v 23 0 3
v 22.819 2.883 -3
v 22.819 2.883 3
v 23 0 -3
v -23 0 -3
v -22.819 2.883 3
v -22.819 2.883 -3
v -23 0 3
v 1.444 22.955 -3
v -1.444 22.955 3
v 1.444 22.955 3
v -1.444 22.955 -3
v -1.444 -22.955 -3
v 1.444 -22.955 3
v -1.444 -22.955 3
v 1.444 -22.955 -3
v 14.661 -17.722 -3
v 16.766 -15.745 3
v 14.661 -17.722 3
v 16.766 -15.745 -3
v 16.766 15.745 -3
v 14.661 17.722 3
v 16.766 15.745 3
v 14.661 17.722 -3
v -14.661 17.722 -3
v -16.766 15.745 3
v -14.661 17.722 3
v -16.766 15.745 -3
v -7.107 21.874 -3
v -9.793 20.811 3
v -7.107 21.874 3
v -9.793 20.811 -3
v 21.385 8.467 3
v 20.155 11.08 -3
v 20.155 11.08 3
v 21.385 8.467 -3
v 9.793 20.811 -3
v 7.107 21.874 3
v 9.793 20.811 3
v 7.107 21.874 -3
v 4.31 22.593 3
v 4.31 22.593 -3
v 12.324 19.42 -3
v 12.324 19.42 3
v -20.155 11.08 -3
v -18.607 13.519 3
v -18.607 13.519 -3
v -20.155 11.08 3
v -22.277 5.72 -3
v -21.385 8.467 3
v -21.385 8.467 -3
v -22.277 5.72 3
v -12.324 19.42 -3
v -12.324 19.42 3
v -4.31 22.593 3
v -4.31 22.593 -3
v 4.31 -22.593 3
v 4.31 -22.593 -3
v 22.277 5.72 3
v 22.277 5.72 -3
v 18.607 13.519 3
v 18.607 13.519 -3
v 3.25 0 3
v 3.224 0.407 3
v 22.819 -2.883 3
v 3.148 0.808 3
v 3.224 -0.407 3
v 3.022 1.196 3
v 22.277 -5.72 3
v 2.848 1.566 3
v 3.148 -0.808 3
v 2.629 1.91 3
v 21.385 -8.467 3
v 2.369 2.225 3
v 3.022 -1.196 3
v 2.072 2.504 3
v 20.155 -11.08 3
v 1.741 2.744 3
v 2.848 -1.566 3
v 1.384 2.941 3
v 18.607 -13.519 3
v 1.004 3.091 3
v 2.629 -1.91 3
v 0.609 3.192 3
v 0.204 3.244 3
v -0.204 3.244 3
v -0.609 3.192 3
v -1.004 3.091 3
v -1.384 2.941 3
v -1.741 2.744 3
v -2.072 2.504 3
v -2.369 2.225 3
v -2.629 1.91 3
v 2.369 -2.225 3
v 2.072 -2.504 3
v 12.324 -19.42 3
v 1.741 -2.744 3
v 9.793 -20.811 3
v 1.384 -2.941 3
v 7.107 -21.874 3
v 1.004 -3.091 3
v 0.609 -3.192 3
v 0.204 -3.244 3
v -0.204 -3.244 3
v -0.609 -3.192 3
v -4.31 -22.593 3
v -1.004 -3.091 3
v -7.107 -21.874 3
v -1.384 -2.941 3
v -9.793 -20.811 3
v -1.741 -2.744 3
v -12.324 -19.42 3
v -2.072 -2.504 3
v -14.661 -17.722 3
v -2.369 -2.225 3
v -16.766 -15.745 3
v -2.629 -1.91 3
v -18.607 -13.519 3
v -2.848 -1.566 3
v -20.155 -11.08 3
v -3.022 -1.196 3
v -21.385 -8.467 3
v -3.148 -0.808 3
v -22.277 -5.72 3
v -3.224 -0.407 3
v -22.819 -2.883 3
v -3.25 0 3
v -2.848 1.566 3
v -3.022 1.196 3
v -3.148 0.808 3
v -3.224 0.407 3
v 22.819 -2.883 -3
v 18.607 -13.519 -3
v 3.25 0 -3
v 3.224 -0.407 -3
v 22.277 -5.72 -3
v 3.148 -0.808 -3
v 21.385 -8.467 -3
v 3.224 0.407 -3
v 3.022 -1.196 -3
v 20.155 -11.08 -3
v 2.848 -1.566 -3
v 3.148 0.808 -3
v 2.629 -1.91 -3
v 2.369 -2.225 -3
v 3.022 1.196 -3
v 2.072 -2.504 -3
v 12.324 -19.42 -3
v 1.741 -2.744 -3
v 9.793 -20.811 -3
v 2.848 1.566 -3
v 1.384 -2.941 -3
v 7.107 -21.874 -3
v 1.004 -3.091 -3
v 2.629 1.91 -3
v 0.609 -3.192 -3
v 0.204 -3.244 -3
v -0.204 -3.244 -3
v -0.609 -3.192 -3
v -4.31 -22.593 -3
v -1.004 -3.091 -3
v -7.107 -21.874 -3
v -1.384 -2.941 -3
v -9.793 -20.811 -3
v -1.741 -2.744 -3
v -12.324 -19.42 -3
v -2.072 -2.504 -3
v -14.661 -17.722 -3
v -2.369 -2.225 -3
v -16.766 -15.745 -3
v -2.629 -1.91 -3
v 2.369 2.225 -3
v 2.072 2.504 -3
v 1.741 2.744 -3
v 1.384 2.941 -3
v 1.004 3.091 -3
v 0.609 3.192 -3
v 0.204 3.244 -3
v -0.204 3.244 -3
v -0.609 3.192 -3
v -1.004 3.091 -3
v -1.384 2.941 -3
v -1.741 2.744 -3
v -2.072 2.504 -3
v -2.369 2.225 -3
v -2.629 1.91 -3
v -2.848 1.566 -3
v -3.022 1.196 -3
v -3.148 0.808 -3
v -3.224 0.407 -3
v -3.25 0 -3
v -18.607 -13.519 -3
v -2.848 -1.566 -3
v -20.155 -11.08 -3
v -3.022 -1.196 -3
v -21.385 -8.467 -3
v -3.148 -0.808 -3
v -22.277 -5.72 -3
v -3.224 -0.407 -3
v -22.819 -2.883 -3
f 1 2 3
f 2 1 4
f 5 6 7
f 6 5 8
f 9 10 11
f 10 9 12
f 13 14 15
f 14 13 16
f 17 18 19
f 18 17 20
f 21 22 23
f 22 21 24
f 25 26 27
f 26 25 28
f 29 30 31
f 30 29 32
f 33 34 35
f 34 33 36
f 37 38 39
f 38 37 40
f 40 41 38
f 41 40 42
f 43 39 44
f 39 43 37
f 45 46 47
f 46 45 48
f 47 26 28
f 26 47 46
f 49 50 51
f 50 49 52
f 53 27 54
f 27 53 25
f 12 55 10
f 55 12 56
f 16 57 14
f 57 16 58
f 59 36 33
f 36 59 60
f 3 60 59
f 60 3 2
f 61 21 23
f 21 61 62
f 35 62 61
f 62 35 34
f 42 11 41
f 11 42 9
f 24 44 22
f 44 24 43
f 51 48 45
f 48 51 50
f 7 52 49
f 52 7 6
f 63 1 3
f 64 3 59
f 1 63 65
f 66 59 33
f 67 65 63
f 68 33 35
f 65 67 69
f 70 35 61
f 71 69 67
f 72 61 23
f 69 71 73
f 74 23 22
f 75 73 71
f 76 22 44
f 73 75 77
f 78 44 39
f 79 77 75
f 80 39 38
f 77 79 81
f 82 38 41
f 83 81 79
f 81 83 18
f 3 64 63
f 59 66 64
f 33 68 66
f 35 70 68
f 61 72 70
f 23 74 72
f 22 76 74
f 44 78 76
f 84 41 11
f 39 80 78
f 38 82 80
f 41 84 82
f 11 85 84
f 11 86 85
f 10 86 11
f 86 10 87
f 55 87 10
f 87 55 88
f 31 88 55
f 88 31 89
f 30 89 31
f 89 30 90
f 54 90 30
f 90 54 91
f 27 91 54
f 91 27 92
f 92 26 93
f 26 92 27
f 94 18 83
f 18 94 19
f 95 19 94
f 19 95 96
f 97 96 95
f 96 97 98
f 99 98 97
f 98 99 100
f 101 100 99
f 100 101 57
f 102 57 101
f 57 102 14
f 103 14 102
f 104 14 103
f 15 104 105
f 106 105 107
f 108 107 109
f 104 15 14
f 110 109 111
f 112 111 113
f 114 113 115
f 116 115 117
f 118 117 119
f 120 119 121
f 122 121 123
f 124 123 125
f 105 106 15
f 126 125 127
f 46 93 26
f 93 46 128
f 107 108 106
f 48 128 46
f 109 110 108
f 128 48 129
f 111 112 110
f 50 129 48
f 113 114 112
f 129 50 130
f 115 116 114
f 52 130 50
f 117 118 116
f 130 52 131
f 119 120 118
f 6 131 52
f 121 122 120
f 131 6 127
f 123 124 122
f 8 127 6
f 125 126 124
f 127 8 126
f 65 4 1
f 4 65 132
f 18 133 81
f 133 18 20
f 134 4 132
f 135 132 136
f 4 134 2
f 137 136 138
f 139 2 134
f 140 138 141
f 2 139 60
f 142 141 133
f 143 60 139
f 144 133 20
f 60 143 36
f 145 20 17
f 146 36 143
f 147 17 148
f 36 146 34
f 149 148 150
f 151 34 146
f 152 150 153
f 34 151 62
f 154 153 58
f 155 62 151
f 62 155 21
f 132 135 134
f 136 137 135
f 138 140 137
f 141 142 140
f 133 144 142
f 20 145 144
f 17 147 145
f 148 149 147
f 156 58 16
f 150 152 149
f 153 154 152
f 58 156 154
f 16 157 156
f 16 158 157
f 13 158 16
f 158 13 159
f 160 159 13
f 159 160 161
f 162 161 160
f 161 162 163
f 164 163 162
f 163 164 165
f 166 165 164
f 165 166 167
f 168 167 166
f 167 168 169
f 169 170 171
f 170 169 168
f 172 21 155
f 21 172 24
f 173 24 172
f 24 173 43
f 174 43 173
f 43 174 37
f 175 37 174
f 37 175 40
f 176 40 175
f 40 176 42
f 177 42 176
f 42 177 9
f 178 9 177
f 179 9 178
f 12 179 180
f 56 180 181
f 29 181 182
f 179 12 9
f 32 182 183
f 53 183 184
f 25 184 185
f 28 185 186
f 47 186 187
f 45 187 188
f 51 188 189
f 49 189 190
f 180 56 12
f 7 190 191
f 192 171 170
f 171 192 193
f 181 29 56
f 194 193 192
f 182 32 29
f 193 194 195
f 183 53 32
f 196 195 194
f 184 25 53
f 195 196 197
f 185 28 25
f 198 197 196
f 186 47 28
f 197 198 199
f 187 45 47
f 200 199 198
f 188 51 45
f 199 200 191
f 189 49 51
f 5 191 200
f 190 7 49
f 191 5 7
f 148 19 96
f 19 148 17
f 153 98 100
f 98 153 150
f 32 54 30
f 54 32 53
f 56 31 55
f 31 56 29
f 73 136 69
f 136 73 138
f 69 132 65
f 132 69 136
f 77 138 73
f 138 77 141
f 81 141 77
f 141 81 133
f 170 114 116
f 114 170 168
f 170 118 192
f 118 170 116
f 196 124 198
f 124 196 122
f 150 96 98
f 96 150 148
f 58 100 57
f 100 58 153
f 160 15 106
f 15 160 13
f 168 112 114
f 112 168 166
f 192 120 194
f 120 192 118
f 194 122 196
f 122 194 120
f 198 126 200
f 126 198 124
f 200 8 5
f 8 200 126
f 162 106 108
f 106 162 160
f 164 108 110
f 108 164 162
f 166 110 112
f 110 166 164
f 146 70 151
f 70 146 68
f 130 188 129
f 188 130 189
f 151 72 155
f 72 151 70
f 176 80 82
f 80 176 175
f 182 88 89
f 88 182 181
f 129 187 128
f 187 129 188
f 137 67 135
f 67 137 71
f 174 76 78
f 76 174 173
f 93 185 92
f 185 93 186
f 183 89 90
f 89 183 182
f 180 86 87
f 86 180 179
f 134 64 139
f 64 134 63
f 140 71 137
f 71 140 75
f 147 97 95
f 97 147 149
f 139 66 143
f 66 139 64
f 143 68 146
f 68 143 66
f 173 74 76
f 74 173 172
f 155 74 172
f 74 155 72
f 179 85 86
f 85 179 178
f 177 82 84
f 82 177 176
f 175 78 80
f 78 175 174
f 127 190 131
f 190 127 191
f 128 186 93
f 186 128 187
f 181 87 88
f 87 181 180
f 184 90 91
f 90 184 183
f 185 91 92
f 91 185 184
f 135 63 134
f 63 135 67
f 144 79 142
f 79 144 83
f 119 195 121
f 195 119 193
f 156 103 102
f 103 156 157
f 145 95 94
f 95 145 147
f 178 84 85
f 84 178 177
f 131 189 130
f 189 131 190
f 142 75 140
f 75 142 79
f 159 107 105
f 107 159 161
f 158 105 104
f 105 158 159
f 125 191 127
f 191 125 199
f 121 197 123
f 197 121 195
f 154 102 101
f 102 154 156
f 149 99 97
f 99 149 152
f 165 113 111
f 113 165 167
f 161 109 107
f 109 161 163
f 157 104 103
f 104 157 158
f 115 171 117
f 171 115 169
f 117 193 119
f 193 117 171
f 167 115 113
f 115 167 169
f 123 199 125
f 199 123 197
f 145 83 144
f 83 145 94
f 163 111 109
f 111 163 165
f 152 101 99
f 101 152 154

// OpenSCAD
$fn = 50;


difference() {
	union() {
		translate(v = [0, 0, -3.0000000000]) {
			cylinder(h = 6, r = 23.0000000000);
		}
	}
	union() {
		translate(v = [0, 0, -100.0000000000]) {
			cylinder(h = 200, r = 3.2500000000);
		}
	}
}
